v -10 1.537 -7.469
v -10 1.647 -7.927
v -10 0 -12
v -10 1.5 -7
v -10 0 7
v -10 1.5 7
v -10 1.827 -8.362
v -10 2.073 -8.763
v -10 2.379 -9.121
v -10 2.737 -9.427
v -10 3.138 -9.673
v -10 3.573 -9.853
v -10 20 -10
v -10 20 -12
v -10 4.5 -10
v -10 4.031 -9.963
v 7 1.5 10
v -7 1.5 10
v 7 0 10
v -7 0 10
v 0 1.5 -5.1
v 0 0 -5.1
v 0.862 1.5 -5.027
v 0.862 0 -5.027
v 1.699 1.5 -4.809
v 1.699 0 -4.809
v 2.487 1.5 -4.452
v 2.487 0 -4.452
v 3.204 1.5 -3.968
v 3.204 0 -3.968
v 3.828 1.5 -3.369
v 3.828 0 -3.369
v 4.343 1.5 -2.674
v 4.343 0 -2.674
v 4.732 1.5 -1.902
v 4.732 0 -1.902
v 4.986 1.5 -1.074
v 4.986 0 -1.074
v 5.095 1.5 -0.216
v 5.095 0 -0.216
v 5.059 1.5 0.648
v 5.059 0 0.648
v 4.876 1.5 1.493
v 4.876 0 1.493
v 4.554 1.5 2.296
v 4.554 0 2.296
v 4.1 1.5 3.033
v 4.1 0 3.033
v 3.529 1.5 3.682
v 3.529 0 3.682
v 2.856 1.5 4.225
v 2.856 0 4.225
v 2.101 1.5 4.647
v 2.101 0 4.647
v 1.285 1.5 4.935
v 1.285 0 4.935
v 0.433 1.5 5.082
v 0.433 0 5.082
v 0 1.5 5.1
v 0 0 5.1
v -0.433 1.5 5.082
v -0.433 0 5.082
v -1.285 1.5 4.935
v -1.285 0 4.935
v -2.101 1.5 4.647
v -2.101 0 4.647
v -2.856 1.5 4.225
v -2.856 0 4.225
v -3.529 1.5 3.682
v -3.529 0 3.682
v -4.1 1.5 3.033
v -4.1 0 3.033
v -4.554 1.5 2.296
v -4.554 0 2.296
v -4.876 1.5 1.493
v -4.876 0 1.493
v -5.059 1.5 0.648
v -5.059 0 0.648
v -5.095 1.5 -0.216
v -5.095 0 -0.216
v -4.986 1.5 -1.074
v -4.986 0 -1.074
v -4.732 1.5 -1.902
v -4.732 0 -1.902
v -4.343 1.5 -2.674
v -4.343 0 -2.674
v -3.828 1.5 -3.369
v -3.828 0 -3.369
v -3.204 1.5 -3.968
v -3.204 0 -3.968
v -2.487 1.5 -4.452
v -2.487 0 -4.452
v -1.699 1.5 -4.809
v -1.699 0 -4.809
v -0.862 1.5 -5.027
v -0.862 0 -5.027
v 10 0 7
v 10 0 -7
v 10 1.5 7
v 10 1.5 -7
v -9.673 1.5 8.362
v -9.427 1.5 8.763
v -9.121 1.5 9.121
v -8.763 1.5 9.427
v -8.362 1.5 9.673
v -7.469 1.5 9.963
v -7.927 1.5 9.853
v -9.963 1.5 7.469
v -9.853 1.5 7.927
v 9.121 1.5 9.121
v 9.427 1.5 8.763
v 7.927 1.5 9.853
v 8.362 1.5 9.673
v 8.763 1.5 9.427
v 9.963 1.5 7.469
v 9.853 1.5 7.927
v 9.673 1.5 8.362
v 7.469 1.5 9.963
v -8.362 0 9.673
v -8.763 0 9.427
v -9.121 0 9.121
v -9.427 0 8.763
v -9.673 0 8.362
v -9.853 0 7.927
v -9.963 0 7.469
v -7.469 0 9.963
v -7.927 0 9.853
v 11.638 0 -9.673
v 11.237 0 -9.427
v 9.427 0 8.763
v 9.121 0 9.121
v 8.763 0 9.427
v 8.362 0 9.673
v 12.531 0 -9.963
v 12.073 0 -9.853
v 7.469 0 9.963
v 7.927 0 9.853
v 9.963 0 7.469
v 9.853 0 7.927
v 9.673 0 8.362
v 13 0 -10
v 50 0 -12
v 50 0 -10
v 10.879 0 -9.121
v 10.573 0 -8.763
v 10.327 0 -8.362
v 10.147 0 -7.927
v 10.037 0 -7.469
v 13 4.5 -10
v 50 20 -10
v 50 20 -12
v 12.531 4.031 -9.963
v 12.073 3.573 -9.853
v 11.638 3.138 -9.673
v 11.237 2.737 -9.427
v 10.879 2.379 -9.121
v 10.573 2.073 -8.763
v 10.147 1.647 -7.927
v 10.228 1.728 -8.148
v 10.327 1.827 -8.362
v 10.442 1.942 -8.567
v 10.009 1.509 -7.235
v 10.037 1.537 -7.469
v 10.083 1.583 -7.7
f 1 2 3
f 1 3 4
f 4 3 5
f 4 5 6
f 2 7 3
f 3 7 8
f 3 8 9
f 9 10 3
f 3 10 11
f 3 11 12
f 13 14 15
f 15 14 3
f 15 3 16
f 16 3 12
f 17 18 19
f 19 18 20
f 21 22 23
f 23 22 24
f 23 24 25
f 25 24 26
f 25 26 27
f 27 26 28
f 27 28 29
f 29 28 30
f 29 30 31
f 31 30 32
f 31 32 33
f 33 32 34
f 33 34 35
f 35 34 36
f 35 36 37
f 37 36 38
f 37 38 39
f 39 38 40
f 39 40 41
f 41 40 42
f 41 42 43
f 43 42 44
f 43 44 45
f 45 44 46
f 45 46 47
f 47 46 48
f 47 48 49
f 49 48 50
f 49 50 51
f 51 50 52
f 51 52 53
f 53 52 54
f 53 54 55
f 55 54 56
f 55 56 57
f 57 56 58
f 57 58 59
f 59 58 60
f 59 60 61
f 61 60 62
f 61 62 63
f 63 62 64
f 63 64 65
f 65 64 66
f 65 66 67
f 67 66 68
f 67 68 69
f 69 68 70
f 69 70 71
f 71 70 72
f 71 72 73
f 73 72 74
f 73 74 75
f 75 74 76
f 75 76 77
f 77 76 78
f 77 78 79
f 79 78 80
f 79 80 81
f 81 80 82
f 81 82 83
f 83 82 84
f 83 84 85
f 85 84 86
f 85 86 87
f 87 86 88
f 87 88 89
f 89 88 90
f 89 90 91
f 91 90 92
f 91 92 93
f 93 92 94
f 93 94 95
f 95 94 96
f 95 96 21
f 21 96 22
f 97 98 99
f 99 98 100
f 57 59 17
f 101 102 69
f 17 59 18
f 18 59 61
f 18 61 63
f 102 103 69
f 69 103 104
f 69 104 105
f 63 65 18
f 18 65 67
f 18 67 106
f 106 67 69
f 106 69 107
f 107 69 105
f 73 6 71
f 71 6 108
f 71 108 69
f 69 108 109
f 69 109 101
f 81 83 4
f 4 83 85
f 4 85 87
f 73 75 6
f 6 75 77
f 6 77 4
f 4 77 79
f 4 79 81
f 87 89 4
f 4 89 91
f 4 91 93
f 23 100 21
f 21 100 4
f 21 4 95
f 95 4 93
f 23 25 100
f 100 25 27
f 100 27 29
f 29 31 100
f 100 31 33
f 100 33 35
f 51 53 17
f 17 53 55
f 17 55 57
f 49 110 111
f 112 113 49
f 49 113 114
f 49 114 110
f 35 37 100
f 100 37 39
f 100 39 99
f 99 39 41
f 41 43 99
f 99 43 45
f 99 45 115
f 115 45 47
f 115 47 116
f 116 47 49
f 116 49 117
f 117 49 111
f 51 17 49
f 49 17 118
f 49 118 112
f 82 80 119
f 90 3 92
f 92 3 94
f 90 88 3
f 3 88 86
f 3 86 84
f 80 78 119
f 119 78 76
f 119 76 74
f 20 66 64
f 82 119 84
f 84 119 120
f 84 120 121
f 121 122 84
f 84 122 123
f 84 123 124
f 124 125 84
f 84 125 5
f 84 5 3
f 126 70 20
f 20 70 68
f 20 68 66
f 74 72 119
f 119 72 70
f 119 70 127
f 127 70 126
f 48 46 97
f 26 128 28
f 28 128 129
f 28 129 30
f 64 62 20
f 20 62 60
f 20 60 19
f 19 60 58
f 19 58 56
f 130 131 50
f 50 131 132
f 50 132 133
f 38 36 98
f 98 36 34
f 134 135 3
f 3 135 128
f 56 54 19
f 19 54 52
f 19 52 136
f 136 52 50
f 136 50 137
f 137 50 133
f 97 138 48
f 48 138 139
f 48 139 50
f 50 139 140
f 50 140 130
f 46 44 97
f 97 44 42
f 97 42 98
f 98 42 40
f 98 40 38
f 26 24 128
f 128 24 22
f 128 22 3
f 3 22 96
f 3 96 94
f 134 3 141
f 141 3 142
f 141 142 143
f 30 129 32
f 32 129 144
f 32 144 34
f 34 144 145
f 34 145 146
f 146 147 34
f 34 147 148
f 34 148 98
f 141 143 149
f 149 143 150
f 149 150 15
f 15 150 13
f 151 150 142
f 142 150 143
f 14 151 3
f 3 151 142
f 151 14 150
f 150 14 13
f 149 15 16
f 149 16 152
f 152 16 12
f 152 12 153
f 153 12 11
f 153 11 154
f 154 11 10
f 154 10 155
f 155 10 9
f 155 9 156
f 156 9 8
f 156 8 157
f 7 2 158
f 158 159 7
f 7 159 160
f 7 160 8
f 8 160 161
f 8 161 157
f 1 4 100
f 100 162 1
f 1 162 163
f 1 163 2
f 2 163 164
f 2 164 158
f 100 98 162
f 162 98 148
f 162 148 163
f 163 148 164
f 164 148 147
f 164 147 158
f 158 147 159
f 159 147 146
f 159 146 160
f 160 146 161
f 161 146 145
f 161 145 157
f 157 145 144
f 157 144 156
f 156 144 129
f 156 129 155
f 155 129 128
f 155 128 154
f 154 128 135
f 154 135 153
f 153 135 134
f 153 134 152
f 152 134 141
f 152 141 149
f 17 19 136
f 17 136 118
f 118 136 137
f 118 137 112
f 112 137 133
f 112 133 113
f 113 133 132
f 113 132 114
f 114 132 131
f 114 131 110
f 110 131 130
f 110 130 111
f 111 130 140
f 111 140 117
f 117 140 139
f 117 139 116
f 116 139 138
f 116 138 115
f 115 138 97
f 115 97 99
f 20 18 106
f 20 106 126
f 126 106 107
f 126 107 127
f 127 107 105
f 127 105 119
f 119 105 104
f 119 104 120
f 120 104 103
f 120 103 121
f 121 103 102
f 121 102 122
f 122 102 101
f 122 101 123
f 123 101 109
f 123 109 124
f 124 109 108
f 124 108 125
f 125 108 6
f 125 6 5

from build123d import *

# Parameters (mm, degrees)
SKETCH1_W           = 20
SKETCH1_H           = 20
SKETCH1_R           = 5.1
BOSS_EXTRUDE2_DEPTH = 1.5
SKETCH1_4_W         = 60
SKETCH1_4_H         = 2
BOSS_EXTRUDE3_DEPTH = 20
FILLET1_R           = 3
FILLET2_R           = 3
FILLET3_R           = 3


with BuildPart() as part:
    # Sketch1 → Boss-Extrude2 (new body)
    with BuildSketch(Plane(origin=(0, 0, 0), x_dir=(1, 0, 0), z_dir=(0, 1, 0))):
        Rectangle(SKETCH1_W, SKETCH1_H)
        Circle(SKETCH1_R, mode=Mode.SUBTRACT)
    extrude(amount=BOSS_EXTRUDE2_DEPTH)

    # Sketch1<4> → Boss-Extrude3 (add)
    with BuildSketch(Plane(origin=(0, 0, 0), x_dir=(1, 0, 0), z_dir=(0, 1, 0))):
        with Locations((20, 11)):
            Rectangle(SKETCH1_4_W, SKETCH1_4_H)
    extrude(amount=BOSS_EXTRUDE3_DEPTH)

    # Fillet1
    fillet1_edges = [part.edges().sort_by_distance(p)[0] for p in [
        (0, 1.5, -10),
    ]]
    fillet(fillet1_edges, radius=FILLET1_R)

    # Fillet2
    fillet2_edges = [part.edges().sort_by_distance(p)[0] for p in [
        (10, 2.25, -10),
    ]]
    fillet(fillet2_edges, radius=FILLET2_R)

    # Fillet3
    fillet3_edges = [part.edges().sort_by_distance(p)[0] for p in [
        (10, 0.75, 10),
        (-10, 0.75, 10),
    ]]
    fillet(fillet3_edges, radius=FILLET3_R)


solid = part.part
